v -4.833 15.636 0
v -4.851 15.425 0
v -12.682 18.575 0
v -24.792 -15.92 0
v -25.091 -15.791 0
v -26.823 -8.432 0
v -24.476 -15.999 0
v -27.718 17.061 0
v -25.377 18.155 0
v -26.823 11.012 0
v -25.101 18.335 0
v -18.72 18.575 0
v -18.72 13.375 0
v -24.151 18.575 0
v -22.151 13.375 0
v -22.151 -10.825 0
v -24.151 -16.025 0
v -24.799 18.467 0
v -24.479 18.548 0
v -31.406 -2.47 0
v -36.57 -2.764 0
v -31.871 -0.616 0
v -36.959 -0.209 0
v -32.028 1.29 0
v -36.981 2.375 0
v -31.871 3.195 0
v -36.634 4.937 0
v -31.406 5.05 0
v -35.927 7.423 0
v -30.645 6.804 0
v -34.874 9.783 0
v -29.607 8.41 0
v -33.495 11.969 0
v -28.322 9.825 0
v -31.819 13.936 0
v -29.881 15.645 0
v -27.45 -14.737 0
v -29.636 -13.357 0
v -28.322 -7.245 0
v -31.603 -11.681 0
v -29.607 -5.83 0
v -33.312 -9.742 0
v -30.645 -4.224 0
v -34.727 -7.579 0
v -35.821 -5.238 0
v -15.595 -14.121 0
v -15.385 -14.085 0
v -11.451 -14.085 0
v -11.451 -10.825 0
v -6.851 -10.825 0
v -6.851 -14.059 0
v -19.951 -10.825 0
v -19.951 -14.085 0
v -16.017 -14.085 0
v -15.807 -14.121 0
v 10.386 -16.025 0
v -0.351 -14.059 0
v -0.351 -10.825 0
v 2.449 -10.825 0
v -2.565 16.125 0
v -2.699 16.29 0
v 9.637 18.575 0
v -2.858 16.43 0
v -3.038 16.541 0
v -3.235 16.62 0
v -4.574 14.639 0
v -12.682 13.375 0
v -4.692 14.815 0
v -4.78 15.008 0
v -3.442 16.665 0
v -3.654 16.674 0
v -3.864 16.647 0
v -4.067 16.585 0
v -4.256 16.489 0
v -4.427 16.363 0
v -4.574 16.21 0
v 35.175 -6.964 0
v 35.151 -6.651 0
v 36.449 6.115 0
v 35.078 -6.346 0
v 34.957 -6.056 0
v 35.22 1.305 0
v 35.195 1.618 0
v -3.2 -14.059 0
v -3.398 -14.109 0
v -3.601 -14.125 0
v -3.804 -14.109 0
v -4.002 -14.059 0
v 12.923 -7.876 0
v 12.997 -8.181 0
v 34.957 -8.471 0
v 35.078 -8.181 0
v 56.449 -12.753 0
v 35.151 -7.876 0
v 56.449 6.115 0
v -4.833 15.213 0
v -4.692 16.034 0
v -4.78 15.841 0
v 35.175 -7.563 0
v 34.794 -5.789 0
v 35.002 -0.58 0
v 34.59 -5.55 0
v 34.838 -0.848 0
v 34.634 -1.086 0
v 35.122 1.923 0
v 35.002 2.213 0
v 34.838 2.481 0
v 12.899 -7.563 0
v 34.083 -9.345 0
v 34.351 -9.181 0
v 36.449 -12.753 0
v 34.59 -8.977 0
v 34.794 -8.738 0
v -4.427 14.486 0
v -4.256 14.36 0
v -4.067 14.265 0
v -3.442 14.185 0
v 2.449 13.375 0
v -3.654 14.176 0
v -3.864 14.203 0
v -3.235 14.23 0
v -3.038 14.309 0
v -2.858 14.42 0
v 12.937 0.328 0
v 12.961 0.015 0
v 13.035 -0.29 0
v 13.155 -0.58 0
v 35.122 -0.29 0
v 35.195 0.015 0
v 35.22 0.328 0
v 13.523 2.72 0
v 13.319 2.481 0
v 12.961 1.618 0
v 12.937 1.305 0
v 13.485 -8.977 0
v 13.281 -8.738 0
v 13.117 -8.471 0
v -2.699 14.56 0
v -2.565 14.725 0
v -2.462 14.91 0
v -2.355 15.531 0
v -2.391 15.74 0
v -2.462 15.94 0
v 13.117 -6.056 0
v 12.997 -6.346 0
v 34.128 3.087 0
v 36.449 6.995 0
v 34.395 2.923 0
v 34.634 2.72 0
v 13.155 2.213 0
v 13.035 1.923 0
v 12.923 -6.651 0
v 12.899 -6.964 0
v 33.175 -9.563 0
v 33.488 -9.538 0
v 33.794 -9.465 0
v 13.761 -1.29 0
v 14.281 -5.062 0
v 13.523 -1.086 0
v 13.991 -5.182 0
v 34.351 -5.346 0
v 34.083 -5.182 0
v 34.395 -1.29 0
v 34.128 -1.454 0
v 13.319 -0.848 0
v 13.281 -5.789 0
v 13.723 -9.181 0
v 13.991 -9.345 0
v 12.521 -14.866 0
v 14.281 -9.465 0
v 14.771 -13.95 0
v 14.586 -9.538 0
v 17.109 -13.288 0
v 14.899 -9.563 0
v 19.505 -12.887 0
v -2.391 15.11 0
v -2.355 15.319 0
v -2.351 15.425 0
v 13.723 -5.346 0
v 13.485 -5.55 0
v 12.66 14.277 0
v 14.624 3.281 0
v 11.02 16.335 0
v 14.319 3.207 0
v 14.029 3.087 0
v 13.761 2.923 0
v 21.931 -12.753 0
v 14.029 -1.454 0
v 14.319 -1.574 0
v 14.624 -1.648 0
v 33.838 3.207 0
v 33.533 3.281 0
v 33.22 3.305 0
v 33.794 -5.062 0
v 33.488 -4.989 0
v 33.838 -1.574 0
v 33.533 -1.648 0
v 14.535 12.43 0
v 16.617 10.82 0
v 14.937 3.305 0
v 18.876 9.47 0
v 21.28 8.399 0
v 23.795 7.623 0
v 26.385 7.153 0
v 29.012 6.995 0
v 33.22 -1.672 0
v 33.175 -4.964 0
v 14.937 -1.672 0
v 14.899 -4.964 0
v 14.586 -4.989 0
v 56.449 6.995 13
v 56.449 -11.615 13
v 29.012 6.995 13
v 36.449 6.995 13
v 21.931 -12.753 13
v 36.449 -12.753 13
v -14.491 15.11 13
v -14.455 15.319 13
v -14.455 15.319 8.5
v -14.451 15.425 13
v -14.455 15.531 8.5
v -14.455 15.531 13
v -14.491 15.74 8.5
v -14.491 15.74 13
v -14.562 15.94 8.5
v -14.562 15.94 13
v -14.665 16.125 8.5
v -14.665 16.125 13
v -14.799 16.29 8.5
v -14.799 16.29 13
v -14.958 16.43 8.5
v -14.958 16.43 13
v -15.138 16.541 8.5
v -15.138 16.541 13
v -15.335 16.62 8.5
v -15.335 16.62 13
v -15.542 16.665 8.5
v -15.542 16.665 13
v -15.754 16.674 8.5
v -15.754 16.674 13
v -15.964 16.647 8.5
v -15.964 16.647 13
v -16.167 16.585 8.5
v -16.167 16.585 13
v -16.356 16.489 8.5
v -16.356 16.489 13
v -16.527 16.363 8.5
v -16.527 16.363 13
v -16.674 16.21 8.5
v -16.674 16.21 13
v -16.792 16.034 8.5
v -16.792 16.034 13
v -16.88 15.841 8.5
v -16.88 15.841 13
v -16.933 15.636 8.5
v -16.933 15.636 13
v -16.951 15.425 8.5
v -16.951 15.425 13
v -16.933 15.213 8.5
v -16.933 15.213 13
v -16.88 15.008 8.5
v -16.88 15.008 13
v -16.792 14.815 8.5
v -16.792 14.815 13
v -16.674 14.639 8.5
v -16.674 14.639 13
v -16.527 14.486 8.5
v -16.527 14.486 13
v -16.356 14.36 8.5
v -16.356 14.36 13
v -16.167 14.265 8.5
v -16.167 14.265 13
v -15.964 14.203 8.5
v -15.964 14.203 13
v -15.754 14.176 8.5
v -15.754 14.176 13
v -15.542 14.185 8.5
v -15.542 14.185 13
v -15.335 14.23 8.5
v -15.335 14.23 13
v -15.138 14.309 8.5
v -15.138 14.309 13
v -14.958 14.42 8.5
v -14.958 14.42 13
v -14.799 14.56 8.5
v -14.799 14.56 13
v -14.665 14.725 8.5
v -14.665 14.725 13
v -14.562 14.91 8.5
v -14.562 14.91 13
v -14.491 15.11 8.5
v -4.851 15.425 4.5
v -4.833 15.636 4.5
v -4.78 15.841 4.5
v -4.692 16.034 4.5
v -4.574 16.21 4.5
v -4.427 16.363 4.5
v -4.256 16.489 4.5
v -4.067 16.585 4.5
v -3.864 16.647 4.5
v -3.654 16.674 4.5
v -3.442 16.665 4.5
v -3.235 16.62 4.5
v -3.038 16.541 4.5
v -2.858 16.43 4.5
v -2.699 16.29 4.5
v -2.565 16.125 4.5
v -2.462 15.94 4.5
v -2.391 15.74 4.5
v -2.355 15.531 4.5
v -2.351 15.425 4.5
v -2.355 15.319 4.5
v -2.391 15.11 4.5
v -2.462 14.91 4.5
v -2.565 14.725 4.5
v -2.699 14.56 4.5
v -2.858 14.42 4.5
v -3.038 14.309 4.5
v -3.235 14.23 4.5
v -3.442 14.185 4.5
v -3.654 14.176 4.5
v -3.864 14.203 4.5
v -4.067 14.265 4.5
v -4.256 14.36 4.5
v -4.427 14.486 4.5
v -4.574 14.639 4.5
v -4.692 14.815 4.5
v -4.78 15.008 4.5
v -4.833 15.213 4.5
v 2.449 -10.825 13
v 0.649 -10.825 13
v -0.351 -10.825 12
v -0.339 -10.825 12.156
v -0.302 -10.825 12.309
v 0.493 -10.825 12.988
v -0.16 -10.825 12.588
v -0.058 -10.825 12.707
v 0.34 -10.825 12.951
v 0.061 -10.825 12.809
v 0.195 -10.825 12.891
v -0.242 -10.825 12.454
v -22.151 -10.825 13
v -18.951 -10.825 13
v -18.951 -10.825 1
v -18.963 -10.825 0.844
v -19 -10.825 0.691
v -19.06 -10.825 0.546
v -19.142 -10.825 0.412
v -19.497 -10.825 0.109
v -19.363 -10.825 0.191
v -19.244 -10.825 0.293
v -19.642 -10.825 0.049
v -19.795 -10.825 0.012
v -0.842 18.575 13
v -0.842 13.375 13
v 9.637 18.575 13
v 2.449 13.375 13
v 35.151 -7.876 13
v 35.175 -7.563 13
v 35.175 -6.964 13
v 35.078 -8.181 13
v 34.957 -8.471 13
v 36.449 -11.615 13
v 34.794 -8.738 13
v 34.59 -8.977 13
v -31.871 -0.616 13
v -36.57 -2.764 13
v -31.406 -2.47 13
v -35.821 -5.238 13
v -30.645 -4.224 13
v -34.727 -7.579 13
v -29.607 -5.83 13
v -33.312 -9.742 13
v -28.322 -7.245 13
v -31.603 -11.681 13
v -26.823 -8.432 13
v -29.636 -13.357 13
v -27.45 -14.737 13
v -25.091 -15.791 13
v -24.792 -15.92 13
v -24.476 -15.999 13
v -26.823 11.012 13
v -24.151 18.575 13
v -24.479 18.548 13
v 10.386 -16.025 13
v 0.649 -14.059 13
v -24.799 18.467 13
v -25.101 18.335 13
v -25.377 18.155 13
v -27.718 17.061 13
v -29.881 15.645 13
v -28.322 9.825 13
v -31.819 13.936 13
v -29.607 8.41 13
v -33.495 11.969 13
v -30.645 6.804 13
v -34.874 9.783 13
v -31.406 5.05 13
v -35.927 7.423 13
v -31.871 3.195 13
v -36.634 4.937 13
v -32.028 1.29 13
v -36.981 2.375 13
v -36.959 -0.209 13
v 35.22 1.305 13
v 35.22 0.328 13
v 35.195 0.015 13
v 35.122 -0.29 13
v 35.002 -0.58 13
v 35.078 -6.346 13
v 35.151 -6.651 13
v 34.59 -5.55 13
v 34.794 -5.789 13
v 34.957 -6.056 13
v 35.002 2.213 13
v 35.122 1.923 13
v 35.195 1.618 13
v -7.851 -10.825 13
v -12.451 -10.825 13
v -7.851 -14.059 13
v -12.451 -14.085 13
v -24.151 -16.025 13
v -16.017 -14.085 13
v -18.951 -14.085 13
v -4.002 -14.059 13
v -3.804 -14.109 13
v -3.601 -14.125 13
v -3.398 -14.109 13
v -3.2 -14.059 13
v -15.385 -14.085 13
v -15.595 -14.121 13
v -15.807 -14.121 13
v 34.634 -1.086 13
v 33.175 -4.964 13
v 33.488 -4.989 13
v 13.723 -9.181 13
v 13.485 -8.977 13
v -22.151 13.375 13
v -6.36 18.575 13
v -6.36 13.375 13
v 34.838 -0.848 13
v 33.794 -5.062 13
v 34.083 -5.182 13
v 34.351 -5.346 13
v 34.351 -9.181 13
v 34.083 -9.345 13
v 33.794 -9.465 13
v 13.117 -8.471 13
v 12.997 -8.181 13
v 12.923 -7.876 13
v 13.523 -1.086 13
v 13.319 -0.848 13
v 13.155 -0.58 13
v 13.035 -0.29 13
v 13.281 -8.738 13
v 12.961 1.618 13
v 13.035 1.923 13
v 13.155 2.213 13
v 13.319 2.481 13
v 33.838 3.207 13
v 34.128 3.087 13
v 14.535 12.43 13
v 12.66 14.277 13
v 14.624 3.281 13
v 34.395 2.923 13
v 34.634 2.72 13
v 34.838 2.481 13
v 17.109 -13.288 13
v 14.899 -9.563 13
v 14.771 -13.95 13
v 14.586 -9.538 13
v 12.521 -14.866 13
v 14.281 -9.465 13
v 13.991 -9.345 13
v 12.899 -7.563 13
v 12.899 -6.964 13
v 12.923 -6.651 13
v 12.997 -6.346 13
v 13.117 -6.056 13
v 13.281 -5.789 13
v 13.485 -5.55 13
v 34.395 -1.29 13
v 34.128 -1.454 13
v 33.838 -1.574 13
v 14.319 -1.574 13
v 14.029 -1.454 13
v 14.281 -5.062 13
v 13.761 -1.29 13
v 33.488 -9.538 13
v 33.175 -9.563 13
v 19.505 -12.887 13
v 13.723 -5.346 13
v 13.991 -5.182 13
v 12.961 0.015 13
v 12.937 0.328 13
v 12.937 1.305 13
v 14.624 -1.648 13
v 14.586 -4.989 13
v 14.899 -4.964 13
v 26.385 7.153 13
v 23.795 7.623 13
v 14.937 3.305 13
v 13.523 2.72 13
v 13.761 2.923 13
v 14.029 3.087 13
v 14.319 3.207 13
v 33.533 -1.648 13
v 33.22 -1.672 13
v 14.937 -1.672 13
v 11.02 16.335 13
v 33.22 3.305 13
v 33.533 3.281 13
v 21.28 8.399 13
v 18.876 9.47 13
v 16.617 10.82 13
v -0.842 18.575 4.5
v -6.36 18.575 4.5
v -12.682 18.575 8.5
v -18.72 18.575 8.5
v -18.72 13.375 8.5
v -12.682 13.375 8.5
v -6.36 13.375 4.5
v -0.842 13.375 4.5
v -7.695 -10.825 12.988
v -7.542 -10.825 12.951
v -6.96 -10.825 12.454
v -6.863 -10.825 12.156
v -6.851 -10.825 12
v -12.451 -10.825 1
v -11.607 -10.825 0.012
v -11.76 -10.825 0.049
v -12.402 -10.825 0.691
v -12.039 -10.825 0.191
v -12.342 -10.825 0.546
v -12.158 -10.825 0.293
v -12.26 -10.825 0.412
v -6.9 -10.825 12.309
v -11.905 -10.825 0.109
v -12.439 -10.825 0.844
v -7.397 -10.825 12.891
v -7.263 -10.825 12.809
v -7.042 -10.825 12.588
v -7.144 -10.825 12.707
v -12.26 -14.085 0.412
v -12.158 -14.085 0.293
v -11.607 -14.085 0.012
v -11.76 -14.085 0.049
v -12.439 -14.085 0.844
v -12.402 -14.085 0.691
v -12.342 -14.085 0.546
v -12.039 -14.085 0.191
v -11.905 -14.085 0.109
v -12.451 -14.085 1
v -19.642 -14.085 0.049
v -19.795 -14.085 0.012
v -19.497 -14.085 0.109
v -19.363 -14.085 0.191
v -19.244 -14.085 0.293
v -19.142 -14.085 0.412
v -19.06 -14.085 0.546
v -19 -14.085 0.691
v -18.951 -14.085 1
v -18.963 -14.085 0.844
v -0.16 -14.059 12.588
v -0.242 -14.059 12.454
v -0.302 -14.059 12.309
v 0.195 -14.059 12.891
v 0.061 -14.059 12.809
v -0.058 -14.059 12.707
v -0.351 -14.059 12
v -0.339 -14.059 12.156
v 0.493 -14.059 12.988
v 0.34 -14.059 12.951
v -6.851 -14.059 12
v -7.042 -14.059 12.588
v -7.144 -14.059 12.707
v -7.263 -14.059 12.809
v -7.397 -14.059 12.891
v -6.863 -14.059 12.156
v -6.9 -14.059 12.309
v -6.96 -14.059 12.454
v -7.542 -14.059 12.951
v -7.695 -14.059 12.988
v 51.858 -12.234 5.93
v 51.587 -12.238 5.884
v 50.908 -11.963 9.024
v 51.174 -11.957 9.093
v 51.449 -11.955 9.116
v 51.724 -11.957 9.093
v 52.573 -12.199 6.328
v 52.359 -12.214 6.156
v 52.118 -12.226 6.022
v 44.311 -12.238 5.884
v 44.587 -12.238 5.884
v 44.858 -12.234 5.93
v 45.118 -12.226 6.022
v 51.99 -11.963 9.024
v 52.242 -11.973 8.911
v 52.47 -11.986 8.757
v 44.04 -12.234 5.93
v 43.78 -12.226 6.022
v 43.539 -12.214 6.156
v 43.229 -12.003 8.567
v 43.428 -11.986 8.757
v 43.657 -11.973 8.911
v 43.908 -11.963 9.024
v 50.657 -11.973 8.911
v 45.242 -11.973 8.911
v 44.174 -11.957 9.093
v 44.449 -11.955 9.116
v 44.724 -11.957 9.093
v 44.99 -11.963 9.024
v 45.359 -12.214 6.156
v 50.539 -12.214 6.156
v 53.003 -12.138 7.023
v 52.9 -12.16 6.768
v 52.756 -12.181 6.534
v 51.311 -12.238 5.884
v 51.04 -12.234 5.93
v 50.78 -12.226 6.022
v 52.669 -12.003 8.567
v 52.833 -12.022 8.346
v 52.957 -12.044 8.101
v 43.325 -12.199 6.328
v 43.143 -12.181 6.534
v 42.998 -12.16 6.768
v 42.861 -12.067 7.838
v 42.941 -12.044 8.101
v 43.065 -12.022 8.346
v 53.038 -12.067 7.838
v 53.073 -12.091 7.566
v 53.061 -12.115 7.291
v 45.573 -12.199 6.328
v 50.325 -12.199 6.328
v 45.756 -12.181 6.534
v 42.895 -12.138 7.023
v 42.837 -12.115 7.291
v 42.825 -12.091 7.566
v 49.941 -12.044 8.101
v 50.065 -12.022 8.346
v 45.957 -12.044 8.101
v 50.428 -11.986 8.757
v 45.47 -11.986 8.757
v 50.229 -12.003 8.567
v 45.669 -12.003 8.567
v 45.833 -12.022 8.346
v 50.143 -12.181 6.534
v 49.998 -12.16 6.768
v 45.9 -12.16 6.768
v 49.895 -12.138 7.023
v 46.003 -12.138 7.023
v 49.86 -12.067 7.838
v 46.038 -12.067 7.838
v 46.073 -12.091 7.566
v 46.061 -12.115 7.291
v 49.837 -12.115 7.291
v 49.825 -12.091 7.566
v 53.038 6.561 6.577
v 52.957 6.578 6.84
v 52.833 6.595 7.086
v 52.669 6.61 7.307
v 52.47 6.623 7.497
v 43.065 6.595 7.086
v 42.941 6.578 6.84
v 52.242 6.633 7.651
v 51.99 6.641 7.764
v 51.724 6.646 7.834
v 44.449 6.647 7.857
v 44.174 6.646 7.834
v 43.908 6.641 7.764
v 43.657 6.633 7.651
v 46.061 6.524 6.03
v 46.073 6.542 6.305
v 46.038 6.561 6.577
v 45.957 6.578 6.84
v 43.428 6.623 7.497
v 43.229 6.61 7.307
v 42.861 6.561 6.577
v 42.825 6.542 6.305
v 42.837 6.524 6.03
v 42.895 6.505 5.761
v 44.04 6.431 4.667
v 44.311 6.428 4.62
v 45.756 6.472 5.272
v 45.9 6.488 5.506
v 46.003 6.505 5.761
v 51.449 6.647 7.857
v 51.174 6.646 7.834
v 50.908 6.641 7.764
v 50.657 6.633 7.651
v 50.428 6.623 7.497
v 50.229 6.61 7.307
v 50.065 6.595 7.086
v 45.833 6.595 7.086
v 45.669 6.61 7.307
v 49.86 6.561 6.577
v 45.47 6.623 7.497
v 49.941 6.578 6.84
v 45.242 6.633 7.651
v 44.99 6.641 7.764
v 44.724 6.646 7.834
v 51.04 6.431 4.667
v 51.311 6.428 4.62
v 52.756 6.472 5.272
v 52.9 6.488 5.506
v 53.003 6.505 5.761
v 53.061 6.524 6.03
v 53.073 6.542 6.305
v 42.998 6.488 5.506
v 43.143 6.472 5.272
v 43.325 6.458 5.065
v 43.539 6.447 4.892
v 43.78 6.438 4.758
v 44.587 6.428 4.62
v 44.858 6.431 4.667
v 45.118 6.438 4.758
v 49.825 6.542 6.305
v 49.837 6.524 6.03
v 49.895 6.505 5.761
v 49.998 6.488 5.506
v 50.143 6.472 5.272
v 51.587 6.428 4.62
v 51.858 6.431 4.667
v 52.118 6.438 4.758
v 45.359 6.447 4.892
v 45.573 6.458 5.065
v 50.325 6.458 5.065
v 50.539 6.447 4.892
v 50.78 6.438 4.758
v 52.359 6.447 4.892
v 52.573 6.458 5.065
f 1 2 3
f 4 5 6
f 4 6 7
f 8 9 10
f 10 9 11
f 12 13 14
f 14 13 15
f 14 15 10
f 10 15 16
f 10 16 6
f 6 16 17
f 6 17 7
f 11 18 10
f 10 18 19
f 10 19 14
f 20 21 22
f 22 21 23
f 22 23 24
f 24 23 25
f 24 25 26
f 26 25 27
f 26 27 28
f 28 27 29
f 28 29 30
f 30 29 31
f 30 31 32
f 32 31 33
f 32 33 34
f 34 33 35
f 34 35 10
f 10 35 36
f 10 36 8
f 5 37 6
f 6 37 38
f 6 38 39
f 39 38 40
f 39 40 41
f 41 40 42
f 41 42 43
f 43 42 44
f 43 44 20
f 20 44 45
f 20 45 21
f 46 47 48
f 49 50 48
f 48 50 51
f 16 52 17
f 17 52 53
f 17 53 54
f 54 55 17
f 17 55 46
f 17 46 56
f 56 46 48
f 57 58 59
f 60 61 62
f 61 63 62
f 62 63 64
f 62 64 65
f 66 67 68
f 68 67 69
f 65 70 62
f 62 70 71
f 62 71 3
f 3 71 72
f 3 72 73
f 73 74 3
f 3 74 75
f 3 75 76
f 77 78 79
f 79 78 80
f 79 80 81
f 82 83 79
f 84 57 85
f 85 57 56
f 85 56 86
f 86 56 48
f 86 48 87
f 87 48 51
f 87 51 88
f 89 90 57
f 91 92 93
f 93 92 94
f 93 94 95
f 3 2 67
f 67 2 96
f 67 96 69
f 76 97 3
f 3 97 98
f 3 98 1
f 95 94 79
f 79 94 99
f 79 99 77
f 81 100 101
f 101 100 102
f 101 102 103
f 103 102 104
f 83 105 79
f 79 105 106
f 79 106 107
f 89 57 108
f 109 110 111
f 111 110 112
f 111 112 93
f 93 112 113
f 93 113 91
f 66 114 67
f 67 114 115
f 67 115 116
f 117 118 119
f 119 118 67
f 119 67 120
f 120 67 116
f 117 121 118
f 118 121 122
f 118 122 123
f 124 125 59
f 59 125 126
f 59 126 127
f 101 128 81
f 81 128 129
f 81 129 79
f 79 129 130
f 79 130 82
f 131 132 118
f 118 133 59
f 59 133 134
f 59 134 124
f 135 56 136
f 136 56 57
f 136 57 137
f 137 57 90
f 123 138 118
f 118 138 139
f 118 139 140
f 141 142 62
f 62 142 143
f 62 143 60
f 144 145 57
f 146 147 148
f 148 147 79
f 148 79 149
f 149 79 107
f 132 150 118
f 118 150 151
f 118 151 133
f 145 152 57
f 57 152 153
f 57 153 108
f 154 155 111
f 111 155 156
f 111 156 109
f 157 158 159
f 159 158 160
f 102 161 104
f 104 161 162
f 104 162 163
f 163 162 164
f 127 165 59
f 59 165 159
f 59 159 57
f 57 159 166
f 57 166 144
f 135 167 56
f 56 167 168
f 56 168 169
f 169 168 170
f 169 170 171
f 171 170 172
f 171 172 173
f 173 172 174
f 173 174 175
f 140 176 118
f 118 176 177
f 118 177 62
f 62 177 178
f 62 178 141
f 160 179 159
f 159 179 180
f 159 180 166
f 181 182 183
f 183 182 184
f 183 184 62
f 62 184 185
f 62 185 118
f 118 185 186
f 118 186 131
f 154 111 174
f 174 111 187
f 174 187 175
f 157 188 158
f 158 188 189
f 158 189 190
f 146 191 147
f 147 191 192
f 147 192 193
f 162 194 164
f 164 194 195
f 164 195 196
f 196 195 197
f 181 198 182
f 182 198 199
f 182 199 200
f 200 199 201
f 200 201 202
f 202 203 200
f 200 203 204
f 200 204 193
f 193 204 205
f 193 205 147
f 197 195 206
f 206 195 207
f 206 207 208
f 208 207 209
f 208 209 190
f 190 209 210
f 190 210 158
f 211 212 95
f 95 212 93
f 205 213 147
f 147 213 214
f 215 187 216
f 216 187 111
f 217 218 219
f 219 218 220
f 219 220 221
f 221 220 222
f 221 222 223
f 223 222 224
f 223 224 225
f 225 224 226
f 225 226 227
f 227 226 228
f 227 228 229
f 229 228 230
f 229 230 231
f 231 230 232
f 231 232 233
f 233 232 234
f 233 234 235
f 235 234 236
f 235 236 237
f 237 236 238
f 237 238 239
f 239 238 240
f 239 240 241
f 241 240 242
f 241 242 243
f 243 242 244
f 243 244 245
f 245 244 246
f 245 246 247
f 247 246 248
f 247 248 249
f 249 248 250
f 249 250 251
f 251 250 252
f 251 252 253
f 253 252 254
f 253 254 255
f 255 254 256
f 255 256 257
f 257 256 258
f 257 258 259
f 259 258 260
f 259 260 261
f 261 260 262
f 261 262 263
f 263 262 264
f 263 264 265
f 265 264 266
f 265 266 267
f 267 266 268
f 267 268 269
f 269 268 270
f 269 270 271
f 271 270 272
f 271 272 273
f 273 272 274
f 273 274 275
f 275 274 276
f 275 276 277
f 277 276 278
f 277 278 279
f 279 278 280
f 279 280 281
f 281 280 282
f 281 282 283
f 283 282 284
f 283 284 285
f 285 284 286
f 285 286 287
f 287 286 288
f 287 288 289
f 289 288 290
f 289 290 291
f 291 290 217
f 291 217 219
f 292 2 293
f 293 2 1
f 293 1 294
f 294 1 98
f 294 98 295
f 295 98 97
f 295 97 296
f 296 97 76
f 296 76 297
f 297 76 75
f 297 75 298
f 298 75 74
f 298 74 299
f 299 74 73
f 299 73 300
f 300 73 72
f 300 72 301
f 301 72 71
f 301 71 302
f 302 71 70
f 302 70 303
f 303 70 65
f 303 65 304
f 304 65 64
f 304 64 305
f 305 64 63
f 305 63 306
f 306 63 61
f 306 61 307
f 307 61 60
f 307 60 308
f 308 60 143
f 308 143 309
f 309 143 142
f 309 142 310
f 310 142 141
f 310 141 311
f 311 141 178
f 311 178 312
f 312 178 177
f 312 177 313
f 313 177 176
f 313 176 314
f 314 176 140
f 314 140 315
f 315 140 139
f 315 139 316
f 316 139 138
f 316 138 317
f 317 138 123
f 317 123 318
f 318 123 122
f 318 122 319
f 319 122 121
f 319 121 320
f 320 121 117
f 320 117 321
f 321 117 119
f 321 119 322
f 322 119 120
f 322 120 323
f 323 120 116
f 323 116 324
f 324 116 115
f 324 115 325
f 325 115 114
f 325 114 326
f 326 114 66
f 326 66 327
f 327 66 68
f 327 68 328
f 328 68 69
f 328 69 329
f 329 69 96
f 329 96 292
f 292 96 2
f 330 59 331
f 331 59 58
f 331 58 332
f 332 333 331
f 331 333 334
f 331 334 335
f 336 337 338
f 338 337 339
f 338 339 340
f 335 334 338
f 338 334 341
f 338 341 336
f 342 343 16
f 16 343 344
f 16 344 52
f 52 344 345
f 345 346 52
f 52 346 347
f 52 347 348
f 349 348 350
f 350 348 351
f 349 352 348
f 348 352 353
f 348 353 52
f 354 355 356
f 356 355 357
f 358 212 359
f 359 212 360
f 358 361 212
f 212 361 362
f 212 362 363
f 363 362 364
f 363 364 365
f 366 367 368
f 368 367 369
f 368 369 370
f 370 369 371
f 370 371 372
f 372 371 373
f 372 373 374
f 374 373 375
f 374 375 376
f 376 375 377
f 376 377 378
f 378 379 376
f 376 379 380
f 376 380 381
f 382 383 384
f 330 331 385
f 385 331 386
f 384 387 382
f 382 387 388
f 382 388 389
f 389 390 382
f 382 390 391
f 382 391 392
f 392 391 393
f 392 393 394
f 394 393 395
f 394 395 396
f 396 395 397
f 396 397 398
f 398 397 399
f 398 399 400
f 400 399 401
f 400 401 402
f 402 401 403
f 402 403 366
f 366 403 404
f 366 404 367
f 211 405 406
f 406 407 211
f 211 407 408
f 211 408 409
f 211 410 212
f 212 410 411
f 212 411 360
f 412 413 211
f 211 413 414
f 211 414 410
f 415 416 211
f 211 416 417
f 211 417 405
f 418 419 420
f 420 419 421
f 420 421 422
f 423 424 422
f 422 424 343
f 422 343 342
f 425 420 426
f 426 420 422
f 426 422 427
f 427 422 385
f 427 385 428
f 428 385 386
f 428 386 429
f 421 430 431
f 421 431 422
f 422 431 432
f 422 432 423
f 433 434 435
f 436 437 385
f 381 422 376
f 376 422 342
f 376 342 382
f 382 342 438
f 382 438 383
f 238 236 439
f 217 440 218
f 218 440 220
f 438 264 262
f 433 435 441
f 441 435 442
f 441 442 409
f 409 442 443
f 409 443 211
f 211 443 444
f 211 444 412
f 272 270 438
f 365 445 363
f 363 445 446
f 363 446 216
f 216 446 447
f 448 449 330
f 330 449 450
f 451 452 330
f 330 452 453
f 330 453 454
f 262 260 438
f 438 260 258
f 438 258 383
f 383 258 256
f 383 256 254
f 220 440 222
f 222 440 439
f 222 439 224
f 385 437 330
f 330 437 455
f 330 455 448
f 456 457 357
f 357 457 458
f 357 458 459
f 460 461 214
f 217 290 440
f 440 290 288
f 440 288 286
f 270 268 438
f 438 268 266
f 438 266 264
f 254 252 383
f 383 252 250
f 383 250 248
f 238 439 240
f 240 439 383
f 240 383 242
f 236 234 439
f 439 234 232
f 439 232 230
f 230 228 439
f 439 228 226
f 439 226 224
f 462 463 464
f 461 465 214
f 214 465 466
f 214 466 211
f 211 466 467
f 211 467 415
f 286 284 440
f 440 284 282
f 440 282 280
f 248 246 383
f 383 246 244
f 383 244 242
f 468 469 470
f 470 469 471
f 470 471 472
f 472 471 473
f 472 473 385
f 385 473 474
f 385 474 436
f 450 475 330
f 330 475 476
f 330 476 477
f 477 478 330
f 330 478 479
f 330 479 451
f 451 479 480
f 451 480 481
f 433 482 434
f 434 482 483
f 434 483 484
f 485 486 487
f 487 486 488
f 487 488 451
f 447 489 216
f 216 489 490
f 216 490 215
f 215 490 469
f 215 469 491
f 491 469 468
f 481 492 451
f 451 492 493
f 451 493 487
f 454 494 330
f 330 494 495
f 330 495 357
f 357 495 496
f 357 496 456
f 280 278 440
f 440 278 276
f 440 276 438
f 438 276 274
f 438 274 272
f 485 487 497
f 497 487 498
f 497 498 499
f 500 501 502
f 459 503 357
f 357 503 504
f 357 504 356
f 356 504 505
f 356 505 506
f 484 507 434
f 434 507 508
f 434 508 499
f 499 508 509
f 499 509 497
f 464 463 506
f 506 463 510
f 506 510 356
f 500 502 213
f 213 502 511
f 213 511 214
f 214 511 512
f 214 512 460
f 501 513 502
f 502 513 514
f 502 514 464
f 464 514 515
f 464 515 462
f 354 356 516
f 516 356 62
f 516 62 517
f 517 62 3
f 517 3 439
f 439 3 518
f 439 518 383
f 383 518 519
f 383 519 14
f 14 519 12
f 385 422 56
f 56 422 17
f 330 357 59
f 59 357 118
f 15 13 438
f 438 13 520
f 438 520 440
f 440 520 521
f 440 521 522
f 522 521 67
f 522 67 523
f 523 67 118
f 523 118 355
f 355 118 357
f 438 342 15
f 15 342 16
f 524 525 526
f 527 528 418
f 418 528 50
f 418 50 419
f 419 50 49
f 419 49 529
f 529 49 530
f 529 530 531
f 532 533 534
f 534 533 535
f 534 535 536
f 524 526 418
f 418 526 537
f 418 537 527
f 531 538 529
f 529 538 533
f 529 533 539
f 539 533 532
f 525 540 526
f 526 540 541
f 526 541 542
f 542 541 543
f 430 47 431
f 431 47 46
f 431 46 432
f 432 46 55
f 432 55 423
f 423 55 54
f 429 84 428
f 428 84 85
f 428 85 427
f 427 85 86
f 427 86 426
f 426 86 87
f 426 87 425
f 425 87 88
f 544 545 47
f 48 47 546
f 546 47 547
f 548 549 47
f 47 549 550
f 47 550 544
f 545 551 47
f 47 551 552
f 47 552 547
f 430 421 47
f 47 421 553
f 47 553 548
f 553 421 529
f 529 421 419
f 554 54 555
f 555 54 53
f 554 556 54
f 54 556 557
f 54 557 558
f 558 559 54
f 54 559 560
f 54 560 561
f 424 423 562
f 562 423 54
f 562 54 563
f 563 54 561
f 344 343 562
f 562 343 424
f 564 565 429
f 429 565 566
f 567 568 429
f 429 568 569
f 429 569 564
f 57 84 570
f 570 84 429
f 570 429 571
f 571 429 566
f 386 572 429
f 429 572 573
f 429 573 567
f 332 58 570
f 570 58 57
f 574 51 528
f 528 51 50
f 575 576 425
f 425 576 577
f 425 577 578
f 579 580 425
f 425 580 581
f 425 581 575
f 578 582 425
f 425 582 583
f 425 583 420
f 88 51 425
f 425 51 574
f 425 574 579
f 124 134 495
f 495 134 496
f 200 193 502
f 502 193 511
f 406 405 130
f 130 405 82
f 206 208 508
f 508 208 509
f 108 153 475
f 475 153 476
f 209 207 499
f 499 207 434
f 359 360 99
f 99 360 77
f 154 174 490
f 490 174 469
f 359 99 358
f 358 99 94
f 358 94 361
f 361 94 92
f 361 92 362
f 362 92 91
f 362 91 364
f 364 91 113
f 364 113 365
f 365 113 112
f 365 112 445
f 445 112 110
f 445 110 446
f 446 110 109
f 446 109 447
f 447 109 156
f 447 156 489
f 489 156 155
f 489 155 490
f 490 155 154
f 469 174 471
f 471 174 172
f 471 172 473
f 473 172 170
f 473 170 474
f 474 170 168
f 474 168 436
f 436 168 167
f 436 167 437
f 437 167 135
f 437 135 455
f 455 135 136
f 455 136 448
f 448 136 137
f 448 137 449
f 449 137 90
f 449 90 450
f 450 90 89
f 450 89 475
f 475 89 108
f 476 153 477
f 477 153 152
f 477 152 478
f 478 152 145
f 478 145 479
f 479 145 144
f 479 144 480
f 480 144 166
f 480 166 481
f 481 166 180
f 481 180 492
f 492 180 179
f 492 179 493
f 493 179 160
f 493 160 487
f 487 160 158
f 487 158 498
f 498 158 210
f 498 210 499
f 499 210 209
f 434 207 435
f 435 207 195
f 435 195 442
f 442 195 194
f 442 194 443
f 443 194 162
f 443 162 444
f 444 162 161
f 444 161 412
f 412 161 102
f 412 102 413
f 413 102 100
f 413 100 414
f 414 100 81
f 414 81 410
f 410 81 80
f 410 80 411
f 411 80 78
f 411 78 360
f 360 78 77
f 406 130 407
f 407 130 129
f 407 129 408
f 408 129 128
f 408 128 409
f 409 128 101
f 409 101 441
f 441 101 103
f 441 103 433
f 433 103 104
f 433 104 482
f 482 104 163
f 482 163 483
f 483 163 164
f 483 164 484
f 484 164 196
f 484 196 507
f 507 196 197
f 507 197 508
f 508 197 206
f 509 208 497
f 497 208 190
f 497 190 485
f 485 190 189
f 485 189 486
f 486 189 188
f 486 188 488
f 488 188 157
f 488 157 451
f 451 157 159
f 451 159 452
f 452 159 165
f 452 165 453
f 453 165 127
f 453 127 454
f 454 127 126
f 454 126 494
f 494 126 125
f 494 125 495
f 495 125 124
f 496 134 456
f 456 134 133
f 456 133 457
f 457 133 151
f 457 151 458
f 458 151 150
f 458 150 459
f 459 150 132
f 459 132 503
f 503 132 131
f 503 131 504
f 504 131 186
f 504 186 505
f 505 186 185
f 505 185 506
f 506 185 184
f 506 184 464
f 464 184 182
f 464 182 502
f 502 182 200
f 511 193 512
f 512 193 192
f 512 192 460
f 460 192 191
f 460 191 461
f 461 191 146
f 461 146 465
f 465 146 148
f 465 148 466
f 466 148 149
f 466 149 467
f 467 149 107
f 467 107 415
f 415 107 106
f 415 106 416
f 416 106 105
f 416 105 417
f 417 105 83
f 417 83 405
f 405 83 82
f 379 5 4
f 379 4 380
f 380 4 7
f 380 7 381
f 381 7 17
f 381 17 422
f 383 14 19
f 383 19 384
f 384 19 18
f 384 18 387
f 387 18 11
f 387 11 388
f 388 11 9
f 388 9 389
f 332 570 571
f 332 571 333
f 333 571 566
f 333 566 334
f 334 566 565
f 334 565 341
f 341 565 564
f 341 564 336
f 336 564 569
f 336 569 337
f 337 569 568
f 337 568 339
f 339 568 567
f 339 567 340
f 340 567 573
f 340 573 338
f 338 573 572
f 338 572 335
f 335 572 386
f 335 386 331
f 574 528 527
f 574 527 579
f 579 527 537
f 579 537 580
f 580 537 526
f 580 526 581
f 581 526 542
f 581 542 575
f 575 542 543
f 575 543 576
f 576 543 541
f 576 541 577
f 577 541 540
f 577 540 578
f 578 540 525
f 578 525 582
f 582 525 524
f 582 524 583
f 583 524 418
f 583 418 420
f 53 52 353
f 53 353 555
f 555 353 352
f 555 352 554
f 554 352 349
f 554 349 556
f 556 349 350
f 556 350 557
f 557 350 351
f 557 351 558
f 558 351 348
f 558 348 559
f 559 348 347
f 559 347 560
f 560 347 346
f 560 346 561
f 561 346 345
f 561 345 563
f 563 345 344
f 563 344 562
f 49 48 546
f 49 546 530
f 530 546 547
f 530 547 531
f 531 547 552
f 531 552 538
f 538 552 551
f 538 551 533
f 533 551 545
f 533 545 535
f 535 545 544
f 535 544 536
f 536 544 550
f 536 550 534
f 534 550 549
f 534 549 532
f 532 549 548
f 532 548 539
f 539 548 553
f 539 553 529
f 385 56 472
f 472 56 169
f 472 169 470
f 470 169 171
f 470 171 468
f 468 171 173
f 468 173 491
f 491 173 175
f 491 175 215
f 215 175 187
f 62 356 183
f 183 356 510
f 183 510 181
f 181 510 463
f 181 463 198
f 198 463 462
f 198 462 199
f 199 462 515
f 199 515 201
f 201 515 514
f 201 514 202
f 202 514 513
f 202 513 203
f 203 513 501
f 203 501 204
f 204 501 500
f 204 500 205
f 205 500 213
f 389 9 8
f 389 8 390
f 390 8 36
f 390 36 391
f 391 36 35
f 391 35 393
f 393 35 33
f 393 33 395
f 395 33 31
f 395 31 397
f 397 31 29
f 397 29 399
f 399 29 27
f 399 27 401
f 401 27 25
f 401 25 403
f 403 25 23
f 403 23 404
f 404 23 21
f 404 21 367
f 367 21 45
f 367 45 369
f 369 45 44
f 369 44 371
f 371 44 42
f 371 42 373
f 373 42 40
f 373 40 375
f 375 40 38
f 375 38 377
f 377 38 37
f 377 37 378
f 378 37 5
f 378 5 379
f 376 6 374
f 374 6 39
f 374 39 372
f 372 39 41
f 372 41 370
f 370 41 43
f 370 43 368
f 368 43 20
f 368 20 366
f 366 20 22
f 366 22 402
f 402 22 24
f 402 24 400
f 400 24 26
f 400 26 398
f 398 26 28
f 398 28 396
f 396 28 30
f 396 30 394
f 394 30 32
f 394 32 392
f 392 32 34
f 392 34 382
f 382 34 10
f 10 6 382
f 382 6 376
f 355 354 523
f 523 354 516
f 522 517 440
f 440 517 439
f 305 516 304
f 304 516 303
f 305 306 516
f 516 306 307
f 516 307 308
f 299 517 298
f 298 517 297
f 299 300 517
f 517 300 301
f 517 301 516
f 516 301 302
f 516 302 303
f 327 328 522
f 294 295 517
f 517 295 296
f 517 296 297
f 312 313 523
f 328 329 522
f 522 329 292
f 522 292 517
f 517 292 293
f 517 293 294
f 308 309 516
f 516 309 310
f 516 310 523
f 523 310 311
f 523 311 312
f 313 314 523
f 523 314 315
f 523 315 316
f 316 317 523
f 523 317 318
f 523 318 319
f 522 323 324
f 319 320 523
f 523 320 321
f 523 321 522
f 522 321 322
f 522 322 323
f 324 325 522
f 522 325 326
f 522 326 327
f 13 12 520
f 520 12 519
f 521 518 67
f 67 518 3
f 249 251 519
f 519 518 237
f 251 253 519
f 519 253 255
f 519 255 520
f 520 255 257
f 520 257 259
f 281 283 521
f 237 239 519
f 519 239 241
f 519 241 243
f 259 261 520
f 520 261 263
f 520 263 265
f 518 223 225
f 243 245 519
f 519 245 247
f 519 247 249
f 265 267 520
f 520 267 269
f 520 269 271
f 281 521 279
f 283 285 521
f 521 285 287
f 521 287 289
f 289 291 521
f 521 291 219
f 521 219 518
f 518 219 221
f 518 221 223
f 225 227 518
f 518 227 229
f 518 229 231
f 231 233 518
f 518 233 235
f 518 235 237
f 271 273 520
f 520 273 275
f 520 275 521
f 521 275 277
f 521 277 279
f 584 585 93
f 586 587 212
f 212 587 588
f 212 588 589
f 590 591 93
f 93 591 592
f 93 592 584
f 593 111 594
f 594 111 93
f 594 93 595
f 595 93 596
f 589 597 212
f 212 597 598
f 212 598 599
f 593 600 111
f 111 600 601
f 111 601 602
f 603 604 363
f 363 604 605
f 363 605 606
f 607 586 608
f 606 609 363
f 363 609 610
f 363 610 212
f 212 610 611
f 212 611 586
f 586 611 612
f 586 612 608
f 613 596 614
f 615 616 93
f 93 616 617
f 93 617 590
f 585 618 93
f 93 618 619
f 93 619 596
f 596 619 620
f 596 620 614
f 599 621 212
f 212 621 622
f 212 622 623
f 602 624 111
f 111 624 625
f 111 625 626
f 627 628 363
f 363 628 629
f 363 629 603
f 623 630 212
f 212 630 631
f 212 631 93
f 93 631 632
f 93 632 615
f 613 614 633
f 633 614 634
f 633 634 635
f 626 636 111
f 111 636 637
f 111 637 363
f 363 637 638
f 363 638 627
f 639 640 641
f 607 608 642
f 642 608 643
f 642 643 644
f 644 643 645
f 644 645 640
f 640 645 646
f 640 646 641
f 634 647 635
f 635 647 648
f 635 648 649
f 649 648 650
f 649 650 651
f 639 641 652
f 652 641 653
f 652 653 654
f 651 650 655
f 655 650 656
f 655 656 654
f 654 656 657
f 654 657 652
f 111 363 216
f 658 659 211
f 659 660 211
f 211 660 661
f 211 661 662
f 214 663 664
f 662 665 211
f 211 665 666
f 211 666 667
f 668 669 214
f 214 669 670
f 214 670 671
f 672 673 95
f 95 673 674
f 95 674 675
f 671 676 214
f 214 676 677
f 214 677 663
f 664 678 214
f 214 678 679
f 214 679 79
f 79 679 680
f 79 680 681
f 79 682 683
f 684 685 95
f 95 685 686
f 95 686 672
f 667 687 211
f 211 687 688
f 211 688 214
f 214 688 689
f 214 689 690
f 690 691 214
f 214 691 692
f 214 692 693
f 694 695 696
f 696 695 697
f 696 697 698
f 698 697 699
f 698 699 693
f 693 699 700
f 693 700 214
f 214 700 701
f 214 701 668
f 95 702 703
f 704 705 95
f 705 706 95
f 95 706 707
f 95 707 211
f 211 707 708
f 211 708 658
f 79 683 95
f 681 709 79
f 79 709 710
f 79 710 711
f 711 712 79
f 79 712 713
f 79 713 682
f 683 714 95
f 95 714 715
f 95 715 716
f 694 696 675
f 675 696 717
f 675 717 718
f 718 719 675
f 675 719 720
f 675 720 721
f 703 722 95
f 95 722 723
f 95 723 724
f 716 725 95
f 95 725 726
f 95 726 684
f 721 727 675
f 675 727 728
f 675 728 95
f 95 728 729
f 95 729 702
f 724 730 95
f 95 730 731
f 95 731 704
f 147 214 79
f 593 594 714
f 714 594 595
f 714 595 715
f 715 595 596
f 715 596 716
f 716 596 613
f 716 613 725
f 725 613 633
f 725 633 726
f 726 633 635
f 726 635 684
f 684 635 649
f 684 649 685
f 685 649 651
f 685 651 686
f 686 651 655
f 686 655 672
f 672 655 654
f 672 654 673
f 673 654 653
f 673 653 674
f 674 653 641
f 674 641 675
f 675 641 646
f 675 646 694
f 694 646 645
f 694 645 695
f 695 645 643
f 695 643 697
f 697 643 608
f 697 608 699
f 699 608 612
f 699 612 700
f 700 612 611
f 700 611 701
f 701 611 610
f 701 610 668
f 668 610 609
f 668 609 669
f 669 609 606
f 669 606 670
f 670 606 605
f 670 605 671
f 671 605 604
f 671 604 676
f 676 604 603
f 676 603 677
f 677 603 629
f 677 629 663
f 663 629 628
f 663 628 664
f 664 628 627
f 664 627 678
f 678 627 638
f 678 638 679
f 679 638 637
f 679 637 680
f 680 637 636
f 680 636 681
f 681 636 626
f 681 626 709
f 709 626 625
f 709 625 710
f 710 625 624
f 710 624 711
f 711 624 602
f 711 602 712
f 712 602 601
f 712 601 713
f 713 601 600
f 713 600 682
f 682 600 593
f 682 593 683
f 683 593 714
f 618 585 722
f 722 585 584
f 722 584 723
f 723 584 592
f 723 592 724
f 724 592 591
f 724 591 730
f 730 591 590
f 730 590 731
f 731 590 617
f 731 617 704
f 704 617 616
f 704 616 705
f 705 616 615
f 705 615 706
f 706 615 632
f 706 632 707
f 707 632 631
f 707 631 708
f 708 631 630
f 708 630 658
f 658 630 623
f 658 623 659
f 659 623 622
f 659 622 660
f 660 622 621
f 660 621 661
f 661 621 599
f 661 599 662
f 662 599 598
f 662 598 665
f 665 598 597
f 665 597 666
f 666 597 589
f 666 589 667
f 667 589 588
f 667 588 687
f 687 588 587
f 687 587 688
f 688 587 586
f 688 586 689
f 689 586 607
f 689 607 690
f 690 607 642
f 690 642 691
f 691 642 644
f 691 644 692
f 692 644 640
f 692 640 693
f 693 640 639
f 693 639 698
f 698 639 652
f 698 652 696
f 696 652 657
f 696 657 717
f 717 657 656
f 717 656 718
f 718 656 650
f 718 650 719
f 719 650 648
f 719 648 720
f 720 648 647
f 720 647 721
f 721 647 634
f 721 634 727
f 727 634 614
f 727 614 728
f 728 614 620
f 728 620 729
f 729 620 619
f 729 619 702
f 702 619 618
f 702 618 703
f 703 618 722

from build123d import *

# Parameters (mm, degrees)
SKETCH_1_W           = 32.6
SKETCH_1_H           = 34.6
SKETCH_1_R           = 1.25
SKETCH_1_W_2         = 24.6
SKETCH_1_H_2         = 24.2
EXTRUDE_1_DEPTH      = 13
SKETCH_3_W           = 6.5
SKETCH_3_H           = 6.519005167
CUT_EXTRUDE_1_DEPTH  = 19
SKETCH_4_W           = 6.5
SKETCH_4_H           = 6.467668889
CUT_EXTRUDE_2_DEPTH  = 23
EXTRUDE_2_DEPTH      = 50
SKETCH_1_2_W         = 22.27659965
SKETCH_1_2_H         = 4.598586669
SKETCH_1_2_W_2       = 22.283050596
SKETCH_1_2_H_2       = 4.977540741
CUT_EXTRUDE_5_DEPTH  = 34
FILLET_1_R           = 2
FILLET_2_R           = 2
FILLET_5_R           = 1
SKETCH_9_W           = 54.594998093
SKETCH_9_H           = 18.111982385
SKETCH_9_W_2         = 52.534809486
SKETCH_9_H_2         = 12.989301534
CUT_EXTRUDE_6_DEPTH  = 41
FILLET_6_R           = 22
EXTRUDE_4_DEPTH      = 13
SKETCH_13_W          = 5.518907879
SKETCH_13_H          = 8.361822047
CUT_EXTRUDE_8_DEPTH  = 8.5
SKETCH_14_W          = 6.038657432
SKETCH_14_H          = 7.741248121
CUT_EXTRUDE_9_DEPTH  = 8.5
SKETCH_15_OUTSIDE_W  = 35.102
SKETCH_15_OUTSIDE_H  = 56.702
CUT_EXTRUDE_11_DEPTH = 20
SKETCH_20_R          = 1.625
CUT_EXTRUDE_15_DEPTH = 40


with BuildPart() as part:
    # Sketch 1 → 凸台-拉伸1 (new body)
    with BuildSketch(Plane.XY):
        with Locations((-9.850980392, 1.274712581)):
            Rectangle(SKETCH_1_W, SKETCH_1_H)
        with Locations(Location((-15.700980392, 15.424712581, 0), (0, 0, 180))):
            Circle(SKETCH_1_R, mode=Mode.SUBTRACT)
        with Locations(Location((-3.600980392, 15.424712581, 0), (0, 0, 180))):
            Circle(SKETCH_1_R, mode=Mode.SUBTRACT)
        with Locations(Location((-15.700980392, -12.875287419, 0), (0, 0, 180))):
            Circle(SKETCH_1_R, mode=Mode.SUBTRACT)
        with Locations(Location((-3.600980392, -12.875287419, 0), (0, 0, 180))):
            Circle(SKETCH_1_R, mode=Mode.SUBTRACT)
        with Locations((-9.850980392, 1.274712581)):
            Rectangle(SKETCH_1_W_2, SKETCH_1_H_2, mode=Mode.SUBTRACT)
    extrude(amount=EXTRUDE_1_DEPTH)

    # 草图3 → 切除-拉伸1 (cut)
    with BuildSketch(Plane(origin=(0, 0, 0), x_dir=(-1, 0, 0), z_dir=(0, 0, -1))):
        with Locations((15.700980392, -10.82528742)):
            Rectangle(SKETCH_3_W, SKETCH_3_H)
    extrude(amount=-CUT_EXTRUDE_1_DEPTH, mode=Mode.SUBTRACT)

    # 草图4 → 切除-拉伸2 (cut)
    with BuildSketch(Plane.XY.offset(13)):
        with Locations((-3.600980392, -10.82528742)):
            Rectangle(SKETCH_4_W, SKETCH_4_H)
    extrude(amount=-CUT_EXTRUDE_2_DEPTH, mode=Mode.SUBTRACT)

    # 草图5 → 凸台-拉伸2 (add)
    with BuildSketch(Plane(origin=(6.449019608, 0, 0), x_dir=(0, 0, -1), z_dir=(1, 0, 0))):
        Polygon((-13, 18.574712581), (-13, 10.055461473), (-13, -16.025287419), (0, -16.025287419), (0, -15.027567927), (0, 16.282461831), (0, 18.574712581), align=None)
    extrude(amount=EXTRUDE_2_DEPTH)

    # Sketch 1 2 → 切除-拉伸5 (cut)
    with BuildSketch(Plane.XY.offset(13)):
        with Locations((24.037173058, -7.263594431)):
            Rectangle(SKETCH_1_2_W, SKETCH_1_2_H)
        with Locations((24.078382453, 0.81654228)):
            Rectangle(SKETCH_1_2_W_2, SKETCH_1_2_H_2)
    extrude(amount=-CUT_EXTRUDE_5_DEPTH, mode=Mode.SUBTRACT)

    # 圆角1
    fillet_1_edges = [part.edges().sort_by_distance(p)[0] for p in [
        (12.936857155, -1.672228091, 6.5),
        (12.936857155, 3.30531265, 6.5),
        (35.219907751, 3.30531265, 6.5),
        (35.219907751, -1.672228091, 6.5),
        (12.898873233, -9.562887765, 6.5),
        (12.898873233, -4.964301096, 6.5),
        (35.175472883, -4.964301096, 6.5),
        (35.175472883, -9.562887765, 6.5),
    ]]
    fillet(fillet_1_edges, radius=FILLET_1_R)

    # 圆角2
    fillet_2_edges = [part.edges().sort_by_distance(p)[0] for p in [
        (-26.150980392, -16.025287419, 6.5),
        (-26.150980392, 18.574712581, 6.5),
    ]]
    fillet(fillet_2_edges, radius=FILLET_2_R)

    # 圆角5
    fillet_5_edges = [part.edges().sort_by_distance(p)[0] for p in [
        (-12.450980392, -12.455038711, 0),
        (-18.950980392, -12.455038711, 0),
        (-6.850980392, -12.442204642, 13),
        (-0.350980392, -12.442204642, 13),
    ]]
    fillet(fillet_5_edges, radius=FILLET_5_R)

    # 草图9 → 切除-拉伸6 (cut)
    with BuildSketch(Plane(origin=(0, 0, 0), x_dir=(-1, 0, 0), z_dir=(0, 0, -1))):
        with Locations((-36.934177516, 16.051357777)):
            Rectangle(SKETCH_9_W, SKETCH_9_H)
        with Locations((-36.653242706, -19.247200889)):
            Rectangle(SKETCH_9_W_2, SKETCH_9_H_2)
    extrude(amount=-CUT_EXTRUDE_6_DEPTH, mode=Mode.SUBTRACT)

    # 圆角6
    # the kernel refuses this fillet: 22 mm, written as the material it adds along each edge
    with BuildSketch(Plane(origin=(9.636678469, 6.995366584, 0), x_dir=(0, 1, 0), z_dir=(0, 0, 1))) as fillet_6_piece_1:
        with BuildLine():
            CenterArc((22, -19.375499223), FILLET_6_R, 118.272534833, 61.727465167)
            Line((0, -19.375499223), (-0.44, -19.375499223))
            Line((-0.44, -19.375499223), (-0.44, 0))
            Line((-0.44, 0), (0, 0.44))
            ThreePointArc((0, 0.44), (5.789672998, 0.44), (11.370932916, 0.387509984))
            Line((11.370932916, 0.387509984), (11.579345996, 0))
        make_face()
    extrude(amount=13)
    with BuildSketch(Plane(origin=(10.385837963, -12.752550122, 0), x_dir=(1, 0, 0), z_dir=(0, 0, 1))) as fillet_6_piece_2:
        with BuildLine():
            CenterArc((11.54511289, -22), FILLET_6_R, 90, 31.653290012)
            Line((0, -3.272737297), (-0.230902258, -2.898192043))
            ThreePointArc((-0.230902258, -2.898192043), (-0.44, -1.636368649), (-0.44, 0))
            Line((-0.44, 0), (0, 0.44))
            Line((0, 0.44), (11.54511289, 0.44))
            Line((11.54511289, 0.44), (11.54511289, 0))
        make_face()
    extrude(amount=13)

    # 草图12 → 凸台-拉伸4 (add)
    with BuildSketch(Plane(origin=(0, 0, 0), x_dir=(-1, 0, 0), z_dir=(0, 0, -1))):
        with BuildLine():
            Line((24.150980392, 18.574712581), (24.496655084, -15.99518818))
            ThreePointArc((24.496655084, -15.99518818), (37.015647173, 1.416671567), (24.150980392, 18.574712581))
        make_face()
        with BuildLine():
            Line((26.822698684, 1.289948959), (26.822698684, -8.431688638))
            ThreePointArc((26.822698684, -8.431688638), (32.027920461, 1.289948959), (26.822698684, 11.011586556))
            Line((26.822698684, 11.011586556), (26.822698684, 1.289948959))
        make_face(mode=Mode.SUBTRACT)
    extrude(amount=-EXTRUDE_4_DEPTH)

    # 草图13 → 切除-拉伸8 (cut)
    with BuildSketch(Plane.XY.offset(13)):
        with Locations((-3.600980393, 15.424712581)):
            Rectangle(SKETCH_13_W, SKETCH_13_H)
    extrude(amount=-CUT_EXTRUDE_8_DEPTH, mode=Mode.SUBTRACT)

    # 草图14 → 切除-拉伸9 (cut)
    with BuildSketch(Plane(origin=(0, 0, 0), x_dir=(-1, 0, 0), z_dir=(0, 0, -1))):
        with Locations((15.700980392, 15.424712581)):
            Rectangle(SKETCH_14_W, SKETCH_14_H)
    extrude(amount=-CUT_EXTRUDE_9_DEPTH, mode=Mode.SUBTRACT)

    # 草图15 outside → 切除-拉伸11 (cut)
    with BuildSketch(Plane(origin=(56.449019608, 0, 0), x_dir=(0, 0, -1), z_dir=(1, 0, 0))):
        with Locations((-6.5, 1.275)):
            Rectangle(SKETCH_15_OUTSIDE_W, SKETCH_15_OUTSIDE_H)
        Polygon((-13, 6.995366584), (6.023241537, 5.707746072), (0, -12.752550122), (-13, -11.615197497), align=None, mode=Mode.SUBTRACT)
    extrude(amount=-CUT_EXTRUDE_11_DEPTH, mode=Mode.SUBTRACT)

    # 草图20 → 切除-拉伸15 (cut)
    with BuildSketch(Plane(origin=(0, 6.087549391, -0.412046152), x_dir=(1, 0, 0), z_dir=(0, 0.9977170964112915, -0.06753218142946318))):
        with Locations(Location((44.449019608, -6.662988966, 0), (0, 0, 270))):
            Circle(SKETCH_20_R)
        with Locations(Location((51.449019608, -6.662988966, 0), (0, 0, 270))):
            Circle(SKETCH_20_R)
    extrude(amount=-CUT_EXTRUDE_15_DEPTH, mode=Mode.SUBTRACT)


solid = part.part
